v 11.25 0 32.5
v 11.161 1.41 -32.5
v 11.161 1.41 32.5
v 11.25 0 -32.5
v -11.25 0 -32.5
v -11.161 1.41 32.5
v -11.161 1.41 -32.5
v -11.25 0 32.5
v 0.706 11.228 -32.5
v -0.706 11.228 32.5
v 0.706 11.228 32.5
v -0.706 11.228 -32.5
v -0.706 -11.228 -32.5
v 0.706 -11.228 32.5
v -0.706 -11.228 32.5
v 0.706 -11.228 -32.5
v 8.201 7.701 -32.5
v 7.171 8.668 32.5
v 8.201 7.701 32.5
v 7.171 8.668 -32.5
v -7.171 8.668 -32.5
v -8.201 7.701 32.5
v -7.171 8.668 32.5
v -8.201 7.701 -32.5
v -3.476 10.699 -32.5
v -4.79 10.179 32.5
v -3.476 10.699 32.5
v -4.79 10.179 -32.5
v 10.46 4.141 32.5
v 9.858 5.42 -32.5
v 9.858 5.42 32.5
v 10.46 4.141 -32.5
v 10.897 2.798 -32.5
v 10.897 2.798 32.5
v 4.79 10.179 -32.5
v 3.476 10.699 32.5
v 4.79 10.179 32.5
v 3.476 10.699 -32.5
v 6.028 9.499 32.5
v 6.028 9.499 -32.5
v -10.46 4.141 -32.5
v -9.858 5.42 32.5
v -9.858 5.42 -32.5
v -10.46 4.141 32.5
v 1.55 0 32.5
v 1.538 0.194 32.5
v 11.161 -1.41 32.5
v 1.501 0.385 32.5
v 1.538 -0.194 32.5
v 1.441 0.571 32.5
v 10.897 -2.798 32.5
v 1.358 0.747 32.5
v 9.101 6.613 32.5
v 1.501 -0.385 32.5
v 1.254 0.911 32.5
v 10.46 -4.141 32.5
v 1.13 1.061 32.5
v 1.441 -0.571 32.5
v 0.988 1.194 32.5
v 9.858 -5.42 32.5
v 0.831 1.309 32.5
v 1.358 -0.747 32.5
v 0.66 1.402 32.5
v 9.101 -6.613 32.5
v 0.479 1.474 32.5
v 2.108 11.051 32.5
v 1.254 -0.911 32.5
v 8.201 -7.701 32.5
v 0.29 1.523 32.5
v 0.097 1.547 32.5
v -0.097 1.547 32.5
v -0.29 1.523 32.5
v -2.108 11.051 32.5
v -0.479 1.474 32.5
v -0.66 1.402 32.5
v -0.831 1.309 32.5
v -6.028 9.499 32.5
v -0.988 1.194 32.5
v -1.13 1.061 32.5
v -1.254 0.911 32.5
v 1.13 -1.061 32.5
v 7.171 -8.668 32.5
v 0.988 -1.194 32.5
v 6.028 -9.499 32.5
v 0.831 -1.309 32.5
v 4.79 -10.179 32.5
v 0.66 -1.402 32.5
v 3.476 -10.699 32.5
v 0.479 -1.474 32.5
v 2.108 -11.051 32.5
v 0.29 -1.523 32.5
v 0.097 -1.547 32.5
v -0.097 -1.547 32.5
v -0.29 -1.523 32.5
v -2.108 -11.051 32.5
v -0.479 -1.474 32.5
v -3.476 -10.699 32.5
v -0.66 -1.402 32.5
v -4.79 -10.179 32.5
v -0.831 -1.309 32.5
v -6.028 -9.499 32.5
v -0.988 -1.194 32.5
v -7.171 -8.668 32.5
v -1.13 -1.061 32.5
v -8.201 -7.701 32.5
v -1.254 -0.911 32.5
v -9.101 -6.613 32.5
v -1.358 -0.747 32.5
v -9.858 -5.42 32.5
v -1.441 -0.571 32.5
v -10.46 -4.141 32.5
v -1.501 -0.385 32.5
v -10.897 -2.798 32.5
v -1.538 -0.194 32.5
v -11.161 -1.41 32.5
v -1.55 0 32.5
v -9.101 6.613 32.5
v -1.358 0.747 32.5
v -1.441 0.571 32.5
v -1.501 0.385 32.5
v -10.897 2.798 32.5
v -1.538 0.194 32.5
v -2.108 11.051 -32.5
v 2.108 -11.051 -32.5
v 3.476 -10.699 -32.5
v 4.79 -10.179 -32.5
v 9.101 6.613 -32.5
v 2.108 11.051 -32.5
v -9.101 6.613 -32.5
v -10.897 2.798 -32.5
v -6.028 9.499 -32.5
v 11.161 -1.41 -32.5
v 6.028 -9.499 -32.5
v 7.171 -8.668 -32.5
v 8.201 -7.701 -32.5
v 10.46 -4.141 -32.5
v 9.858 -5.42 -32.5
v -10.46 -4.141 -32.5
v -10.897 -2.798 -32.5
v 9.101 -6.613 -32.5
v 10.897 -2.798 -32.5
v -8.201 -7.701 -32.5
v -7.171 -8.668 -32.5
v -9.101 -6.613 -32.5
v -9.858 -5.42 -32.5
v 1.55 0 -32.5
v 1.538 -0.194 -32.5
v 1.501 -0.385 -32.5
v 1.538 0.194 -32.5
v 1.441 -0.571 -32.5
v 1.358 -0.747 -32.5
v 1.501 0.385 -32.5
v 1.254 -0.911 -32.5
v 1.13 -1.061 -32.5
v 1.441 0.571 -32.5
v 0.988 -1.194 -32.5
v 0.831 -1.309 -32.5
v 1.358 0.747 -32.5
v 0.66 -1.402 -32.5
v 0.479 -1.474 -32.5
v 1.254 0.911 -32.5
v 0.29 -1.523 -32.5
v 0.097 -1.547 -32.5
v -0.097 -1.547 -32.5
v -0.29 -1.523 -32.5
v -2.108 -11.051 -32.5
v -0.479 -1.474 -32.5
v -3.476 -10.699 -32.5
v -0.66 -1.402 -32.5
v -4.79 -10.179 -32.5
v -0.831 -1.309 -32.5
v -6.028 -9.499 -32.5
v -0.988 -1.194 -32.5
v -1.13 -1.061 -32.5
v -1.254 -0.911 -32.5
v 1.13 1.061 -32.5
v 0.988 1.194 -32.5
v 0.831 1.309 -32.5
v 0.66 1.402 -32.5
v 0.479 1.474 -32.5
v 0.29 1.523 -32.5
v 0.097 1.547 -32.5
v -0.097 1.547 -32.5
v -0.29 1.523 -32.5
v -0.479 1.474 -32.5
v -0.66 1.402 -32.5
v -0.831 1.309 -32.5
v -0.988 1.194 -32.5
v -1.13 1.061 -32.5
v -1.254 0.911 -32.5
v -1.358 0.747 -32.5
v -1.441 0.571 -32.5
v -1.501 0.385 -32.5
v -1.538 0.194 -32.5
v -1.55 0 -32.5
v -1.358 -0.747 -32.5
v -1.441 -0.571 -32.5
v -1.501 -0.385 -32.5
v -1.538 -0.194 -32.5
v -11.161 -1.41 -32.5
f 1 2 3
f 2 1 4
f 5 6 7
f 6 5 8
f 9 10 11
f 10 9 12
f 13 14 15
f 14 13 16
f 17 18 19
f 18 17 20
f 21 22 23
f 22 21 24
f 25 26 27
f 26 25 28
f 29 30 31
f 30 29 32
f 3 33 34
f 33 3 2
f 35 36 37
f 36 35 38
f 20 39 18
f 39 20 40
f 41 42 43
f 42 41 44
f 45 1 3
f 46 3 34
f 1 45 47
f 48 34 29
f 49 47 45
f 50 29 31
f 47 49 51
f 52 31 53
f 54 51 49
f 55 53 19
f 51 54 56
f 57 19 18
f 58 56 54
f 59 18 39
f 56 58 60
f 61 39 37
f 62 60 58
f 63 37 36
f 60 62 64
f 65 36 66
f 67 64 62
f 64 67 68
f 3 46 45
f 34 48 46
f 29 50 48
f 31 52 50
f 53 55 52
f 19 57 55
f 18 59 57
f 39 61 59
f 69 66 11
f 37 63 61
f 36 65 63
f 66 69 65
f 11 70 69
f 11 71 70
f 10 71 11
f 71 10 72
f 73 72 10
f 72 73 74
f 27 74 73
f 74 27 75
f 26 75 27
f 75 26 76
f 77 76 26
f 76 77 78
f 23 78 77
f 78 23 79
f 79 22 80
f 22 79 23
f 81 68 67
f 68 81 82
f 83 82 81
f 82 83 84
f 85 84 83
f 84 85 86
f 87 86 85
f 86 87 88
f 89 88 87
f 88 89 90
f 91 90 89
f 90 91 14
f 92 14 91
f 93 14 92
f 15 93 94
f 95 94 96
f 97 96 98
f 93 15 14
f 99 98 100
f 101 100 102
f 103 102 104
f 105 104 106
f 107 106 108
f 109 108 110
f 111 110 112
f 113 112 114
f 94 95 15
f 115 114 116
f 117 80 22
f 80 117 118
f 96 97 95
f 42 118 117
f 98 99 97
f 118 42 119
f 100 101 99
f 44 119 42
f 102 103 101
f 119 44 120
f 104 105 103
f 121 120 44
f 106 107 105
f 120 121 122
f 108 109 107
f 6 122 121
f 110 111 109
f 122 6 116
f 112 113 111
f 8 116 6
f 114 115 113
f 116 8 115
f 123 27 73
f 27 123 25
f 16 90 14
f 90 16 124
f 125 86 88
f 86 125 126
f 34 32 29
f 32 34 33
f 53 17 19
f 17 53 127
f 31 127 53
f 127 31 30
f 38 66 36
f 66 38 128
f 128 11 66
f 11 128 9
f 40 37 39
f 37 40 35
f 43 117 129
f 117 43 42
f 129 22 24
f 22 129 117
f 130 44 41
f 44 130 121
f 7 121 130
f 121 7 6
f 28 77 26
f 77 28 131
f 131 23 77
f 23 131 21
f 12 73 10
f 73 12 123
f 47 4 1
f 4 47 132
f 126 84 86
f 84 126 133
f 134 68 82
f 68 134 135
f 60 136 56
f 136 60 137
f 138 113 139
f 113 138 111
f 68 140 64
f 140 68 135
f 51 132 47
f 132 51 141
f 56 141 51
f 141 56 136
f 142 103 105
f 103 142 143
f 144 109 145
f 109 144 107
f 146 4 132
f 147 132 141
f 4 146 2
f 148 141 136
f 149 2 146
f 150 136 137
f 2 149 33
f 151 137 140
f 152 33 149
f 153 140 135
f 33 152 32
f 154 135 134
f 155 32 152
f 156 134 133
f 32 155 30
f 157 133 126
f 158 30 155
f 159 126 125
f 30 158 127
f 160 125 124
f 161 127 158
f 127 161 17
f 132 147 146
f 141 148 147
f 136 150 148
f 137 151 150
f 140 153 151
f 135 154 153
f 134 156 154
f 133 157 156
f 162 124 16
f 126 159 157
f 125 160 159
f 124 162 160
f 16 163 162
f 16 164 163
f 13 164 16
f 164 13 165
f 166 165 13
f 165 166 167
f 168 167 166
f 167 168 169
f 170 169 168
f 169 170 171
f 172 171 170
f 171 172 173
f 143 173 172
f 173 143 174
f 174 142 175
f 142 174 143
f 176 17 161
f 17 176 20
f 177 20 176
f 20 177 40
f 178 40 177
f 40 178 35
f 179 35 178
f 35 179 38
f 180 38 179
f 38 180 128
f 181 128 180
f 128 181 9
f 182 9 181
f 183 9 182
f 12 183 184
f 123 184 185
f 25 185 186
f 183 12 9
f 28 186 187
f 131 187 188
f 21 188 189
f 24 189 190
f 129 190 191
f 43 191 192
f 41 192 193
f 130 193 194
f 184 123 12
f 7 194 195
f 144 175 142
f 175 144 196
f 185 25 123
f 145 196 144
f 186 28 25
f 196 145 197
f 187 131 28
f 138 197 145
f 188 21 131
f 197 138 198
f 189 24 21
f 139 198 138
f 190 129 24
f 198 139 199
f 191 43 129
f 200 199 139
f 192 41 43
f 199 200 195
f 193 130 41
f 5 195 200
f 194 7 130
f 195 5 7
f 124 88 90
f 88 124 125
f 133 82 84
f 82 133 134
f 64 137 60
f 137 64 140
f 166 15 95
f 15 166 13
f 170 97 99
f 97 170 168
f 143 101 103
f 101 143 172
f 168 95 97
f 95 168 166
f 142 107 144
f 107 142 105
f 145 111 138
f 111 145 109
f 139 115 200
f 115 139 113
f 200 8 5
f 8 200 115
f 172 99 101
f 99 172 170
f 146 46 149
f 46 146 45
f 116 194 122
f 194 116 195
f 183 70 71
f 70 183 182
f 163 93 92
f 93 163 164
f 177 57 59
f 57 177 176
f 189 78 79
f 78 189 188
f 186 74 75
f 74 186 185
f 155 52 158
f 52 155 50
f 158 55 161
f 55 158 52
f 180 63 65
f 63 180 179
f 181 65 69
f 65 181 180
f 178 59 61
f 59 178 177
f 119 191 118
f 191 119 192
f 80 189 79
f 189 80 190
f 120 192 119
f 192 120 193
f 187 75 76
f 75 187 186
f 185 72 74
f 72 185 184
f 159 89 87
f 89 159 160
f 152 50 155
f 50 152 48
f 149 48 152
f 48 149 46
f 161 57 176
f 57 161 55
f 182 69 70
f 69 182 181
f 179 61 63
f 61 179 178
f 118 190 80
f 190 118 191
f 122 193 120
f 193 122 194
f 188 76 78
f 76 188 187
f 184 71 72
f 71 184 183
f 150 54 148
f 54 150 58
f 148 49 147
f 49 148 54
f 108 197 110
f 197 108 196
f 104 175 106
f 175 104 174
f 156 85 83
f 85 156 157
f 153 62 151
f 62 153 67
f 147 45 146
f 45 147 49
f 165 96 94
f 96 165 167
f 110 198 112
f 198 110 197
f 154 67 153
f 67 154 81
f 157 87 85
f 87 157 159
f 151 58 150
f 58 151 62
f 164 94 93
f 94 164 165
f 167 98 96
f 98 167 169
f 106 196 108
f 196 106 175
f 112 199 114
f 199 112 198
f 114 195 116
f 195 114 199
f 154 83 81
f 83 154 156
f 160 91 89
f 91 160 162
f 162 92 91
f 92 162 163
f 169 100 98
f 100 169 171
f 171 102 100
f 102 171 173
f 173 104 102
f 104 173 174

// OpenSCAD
$fn = 50;


difference() {
	union() {
		translate(v = [0, 0, -32.5000000000]) {
			cylinder(h = 65, r = 11.2500000000);
		}
	}
	union() {
		translate(v = [0, 0, -100.0000000000]) {
			cylinder(h = 200, r = 1.5500000000);
		}
	}
}
